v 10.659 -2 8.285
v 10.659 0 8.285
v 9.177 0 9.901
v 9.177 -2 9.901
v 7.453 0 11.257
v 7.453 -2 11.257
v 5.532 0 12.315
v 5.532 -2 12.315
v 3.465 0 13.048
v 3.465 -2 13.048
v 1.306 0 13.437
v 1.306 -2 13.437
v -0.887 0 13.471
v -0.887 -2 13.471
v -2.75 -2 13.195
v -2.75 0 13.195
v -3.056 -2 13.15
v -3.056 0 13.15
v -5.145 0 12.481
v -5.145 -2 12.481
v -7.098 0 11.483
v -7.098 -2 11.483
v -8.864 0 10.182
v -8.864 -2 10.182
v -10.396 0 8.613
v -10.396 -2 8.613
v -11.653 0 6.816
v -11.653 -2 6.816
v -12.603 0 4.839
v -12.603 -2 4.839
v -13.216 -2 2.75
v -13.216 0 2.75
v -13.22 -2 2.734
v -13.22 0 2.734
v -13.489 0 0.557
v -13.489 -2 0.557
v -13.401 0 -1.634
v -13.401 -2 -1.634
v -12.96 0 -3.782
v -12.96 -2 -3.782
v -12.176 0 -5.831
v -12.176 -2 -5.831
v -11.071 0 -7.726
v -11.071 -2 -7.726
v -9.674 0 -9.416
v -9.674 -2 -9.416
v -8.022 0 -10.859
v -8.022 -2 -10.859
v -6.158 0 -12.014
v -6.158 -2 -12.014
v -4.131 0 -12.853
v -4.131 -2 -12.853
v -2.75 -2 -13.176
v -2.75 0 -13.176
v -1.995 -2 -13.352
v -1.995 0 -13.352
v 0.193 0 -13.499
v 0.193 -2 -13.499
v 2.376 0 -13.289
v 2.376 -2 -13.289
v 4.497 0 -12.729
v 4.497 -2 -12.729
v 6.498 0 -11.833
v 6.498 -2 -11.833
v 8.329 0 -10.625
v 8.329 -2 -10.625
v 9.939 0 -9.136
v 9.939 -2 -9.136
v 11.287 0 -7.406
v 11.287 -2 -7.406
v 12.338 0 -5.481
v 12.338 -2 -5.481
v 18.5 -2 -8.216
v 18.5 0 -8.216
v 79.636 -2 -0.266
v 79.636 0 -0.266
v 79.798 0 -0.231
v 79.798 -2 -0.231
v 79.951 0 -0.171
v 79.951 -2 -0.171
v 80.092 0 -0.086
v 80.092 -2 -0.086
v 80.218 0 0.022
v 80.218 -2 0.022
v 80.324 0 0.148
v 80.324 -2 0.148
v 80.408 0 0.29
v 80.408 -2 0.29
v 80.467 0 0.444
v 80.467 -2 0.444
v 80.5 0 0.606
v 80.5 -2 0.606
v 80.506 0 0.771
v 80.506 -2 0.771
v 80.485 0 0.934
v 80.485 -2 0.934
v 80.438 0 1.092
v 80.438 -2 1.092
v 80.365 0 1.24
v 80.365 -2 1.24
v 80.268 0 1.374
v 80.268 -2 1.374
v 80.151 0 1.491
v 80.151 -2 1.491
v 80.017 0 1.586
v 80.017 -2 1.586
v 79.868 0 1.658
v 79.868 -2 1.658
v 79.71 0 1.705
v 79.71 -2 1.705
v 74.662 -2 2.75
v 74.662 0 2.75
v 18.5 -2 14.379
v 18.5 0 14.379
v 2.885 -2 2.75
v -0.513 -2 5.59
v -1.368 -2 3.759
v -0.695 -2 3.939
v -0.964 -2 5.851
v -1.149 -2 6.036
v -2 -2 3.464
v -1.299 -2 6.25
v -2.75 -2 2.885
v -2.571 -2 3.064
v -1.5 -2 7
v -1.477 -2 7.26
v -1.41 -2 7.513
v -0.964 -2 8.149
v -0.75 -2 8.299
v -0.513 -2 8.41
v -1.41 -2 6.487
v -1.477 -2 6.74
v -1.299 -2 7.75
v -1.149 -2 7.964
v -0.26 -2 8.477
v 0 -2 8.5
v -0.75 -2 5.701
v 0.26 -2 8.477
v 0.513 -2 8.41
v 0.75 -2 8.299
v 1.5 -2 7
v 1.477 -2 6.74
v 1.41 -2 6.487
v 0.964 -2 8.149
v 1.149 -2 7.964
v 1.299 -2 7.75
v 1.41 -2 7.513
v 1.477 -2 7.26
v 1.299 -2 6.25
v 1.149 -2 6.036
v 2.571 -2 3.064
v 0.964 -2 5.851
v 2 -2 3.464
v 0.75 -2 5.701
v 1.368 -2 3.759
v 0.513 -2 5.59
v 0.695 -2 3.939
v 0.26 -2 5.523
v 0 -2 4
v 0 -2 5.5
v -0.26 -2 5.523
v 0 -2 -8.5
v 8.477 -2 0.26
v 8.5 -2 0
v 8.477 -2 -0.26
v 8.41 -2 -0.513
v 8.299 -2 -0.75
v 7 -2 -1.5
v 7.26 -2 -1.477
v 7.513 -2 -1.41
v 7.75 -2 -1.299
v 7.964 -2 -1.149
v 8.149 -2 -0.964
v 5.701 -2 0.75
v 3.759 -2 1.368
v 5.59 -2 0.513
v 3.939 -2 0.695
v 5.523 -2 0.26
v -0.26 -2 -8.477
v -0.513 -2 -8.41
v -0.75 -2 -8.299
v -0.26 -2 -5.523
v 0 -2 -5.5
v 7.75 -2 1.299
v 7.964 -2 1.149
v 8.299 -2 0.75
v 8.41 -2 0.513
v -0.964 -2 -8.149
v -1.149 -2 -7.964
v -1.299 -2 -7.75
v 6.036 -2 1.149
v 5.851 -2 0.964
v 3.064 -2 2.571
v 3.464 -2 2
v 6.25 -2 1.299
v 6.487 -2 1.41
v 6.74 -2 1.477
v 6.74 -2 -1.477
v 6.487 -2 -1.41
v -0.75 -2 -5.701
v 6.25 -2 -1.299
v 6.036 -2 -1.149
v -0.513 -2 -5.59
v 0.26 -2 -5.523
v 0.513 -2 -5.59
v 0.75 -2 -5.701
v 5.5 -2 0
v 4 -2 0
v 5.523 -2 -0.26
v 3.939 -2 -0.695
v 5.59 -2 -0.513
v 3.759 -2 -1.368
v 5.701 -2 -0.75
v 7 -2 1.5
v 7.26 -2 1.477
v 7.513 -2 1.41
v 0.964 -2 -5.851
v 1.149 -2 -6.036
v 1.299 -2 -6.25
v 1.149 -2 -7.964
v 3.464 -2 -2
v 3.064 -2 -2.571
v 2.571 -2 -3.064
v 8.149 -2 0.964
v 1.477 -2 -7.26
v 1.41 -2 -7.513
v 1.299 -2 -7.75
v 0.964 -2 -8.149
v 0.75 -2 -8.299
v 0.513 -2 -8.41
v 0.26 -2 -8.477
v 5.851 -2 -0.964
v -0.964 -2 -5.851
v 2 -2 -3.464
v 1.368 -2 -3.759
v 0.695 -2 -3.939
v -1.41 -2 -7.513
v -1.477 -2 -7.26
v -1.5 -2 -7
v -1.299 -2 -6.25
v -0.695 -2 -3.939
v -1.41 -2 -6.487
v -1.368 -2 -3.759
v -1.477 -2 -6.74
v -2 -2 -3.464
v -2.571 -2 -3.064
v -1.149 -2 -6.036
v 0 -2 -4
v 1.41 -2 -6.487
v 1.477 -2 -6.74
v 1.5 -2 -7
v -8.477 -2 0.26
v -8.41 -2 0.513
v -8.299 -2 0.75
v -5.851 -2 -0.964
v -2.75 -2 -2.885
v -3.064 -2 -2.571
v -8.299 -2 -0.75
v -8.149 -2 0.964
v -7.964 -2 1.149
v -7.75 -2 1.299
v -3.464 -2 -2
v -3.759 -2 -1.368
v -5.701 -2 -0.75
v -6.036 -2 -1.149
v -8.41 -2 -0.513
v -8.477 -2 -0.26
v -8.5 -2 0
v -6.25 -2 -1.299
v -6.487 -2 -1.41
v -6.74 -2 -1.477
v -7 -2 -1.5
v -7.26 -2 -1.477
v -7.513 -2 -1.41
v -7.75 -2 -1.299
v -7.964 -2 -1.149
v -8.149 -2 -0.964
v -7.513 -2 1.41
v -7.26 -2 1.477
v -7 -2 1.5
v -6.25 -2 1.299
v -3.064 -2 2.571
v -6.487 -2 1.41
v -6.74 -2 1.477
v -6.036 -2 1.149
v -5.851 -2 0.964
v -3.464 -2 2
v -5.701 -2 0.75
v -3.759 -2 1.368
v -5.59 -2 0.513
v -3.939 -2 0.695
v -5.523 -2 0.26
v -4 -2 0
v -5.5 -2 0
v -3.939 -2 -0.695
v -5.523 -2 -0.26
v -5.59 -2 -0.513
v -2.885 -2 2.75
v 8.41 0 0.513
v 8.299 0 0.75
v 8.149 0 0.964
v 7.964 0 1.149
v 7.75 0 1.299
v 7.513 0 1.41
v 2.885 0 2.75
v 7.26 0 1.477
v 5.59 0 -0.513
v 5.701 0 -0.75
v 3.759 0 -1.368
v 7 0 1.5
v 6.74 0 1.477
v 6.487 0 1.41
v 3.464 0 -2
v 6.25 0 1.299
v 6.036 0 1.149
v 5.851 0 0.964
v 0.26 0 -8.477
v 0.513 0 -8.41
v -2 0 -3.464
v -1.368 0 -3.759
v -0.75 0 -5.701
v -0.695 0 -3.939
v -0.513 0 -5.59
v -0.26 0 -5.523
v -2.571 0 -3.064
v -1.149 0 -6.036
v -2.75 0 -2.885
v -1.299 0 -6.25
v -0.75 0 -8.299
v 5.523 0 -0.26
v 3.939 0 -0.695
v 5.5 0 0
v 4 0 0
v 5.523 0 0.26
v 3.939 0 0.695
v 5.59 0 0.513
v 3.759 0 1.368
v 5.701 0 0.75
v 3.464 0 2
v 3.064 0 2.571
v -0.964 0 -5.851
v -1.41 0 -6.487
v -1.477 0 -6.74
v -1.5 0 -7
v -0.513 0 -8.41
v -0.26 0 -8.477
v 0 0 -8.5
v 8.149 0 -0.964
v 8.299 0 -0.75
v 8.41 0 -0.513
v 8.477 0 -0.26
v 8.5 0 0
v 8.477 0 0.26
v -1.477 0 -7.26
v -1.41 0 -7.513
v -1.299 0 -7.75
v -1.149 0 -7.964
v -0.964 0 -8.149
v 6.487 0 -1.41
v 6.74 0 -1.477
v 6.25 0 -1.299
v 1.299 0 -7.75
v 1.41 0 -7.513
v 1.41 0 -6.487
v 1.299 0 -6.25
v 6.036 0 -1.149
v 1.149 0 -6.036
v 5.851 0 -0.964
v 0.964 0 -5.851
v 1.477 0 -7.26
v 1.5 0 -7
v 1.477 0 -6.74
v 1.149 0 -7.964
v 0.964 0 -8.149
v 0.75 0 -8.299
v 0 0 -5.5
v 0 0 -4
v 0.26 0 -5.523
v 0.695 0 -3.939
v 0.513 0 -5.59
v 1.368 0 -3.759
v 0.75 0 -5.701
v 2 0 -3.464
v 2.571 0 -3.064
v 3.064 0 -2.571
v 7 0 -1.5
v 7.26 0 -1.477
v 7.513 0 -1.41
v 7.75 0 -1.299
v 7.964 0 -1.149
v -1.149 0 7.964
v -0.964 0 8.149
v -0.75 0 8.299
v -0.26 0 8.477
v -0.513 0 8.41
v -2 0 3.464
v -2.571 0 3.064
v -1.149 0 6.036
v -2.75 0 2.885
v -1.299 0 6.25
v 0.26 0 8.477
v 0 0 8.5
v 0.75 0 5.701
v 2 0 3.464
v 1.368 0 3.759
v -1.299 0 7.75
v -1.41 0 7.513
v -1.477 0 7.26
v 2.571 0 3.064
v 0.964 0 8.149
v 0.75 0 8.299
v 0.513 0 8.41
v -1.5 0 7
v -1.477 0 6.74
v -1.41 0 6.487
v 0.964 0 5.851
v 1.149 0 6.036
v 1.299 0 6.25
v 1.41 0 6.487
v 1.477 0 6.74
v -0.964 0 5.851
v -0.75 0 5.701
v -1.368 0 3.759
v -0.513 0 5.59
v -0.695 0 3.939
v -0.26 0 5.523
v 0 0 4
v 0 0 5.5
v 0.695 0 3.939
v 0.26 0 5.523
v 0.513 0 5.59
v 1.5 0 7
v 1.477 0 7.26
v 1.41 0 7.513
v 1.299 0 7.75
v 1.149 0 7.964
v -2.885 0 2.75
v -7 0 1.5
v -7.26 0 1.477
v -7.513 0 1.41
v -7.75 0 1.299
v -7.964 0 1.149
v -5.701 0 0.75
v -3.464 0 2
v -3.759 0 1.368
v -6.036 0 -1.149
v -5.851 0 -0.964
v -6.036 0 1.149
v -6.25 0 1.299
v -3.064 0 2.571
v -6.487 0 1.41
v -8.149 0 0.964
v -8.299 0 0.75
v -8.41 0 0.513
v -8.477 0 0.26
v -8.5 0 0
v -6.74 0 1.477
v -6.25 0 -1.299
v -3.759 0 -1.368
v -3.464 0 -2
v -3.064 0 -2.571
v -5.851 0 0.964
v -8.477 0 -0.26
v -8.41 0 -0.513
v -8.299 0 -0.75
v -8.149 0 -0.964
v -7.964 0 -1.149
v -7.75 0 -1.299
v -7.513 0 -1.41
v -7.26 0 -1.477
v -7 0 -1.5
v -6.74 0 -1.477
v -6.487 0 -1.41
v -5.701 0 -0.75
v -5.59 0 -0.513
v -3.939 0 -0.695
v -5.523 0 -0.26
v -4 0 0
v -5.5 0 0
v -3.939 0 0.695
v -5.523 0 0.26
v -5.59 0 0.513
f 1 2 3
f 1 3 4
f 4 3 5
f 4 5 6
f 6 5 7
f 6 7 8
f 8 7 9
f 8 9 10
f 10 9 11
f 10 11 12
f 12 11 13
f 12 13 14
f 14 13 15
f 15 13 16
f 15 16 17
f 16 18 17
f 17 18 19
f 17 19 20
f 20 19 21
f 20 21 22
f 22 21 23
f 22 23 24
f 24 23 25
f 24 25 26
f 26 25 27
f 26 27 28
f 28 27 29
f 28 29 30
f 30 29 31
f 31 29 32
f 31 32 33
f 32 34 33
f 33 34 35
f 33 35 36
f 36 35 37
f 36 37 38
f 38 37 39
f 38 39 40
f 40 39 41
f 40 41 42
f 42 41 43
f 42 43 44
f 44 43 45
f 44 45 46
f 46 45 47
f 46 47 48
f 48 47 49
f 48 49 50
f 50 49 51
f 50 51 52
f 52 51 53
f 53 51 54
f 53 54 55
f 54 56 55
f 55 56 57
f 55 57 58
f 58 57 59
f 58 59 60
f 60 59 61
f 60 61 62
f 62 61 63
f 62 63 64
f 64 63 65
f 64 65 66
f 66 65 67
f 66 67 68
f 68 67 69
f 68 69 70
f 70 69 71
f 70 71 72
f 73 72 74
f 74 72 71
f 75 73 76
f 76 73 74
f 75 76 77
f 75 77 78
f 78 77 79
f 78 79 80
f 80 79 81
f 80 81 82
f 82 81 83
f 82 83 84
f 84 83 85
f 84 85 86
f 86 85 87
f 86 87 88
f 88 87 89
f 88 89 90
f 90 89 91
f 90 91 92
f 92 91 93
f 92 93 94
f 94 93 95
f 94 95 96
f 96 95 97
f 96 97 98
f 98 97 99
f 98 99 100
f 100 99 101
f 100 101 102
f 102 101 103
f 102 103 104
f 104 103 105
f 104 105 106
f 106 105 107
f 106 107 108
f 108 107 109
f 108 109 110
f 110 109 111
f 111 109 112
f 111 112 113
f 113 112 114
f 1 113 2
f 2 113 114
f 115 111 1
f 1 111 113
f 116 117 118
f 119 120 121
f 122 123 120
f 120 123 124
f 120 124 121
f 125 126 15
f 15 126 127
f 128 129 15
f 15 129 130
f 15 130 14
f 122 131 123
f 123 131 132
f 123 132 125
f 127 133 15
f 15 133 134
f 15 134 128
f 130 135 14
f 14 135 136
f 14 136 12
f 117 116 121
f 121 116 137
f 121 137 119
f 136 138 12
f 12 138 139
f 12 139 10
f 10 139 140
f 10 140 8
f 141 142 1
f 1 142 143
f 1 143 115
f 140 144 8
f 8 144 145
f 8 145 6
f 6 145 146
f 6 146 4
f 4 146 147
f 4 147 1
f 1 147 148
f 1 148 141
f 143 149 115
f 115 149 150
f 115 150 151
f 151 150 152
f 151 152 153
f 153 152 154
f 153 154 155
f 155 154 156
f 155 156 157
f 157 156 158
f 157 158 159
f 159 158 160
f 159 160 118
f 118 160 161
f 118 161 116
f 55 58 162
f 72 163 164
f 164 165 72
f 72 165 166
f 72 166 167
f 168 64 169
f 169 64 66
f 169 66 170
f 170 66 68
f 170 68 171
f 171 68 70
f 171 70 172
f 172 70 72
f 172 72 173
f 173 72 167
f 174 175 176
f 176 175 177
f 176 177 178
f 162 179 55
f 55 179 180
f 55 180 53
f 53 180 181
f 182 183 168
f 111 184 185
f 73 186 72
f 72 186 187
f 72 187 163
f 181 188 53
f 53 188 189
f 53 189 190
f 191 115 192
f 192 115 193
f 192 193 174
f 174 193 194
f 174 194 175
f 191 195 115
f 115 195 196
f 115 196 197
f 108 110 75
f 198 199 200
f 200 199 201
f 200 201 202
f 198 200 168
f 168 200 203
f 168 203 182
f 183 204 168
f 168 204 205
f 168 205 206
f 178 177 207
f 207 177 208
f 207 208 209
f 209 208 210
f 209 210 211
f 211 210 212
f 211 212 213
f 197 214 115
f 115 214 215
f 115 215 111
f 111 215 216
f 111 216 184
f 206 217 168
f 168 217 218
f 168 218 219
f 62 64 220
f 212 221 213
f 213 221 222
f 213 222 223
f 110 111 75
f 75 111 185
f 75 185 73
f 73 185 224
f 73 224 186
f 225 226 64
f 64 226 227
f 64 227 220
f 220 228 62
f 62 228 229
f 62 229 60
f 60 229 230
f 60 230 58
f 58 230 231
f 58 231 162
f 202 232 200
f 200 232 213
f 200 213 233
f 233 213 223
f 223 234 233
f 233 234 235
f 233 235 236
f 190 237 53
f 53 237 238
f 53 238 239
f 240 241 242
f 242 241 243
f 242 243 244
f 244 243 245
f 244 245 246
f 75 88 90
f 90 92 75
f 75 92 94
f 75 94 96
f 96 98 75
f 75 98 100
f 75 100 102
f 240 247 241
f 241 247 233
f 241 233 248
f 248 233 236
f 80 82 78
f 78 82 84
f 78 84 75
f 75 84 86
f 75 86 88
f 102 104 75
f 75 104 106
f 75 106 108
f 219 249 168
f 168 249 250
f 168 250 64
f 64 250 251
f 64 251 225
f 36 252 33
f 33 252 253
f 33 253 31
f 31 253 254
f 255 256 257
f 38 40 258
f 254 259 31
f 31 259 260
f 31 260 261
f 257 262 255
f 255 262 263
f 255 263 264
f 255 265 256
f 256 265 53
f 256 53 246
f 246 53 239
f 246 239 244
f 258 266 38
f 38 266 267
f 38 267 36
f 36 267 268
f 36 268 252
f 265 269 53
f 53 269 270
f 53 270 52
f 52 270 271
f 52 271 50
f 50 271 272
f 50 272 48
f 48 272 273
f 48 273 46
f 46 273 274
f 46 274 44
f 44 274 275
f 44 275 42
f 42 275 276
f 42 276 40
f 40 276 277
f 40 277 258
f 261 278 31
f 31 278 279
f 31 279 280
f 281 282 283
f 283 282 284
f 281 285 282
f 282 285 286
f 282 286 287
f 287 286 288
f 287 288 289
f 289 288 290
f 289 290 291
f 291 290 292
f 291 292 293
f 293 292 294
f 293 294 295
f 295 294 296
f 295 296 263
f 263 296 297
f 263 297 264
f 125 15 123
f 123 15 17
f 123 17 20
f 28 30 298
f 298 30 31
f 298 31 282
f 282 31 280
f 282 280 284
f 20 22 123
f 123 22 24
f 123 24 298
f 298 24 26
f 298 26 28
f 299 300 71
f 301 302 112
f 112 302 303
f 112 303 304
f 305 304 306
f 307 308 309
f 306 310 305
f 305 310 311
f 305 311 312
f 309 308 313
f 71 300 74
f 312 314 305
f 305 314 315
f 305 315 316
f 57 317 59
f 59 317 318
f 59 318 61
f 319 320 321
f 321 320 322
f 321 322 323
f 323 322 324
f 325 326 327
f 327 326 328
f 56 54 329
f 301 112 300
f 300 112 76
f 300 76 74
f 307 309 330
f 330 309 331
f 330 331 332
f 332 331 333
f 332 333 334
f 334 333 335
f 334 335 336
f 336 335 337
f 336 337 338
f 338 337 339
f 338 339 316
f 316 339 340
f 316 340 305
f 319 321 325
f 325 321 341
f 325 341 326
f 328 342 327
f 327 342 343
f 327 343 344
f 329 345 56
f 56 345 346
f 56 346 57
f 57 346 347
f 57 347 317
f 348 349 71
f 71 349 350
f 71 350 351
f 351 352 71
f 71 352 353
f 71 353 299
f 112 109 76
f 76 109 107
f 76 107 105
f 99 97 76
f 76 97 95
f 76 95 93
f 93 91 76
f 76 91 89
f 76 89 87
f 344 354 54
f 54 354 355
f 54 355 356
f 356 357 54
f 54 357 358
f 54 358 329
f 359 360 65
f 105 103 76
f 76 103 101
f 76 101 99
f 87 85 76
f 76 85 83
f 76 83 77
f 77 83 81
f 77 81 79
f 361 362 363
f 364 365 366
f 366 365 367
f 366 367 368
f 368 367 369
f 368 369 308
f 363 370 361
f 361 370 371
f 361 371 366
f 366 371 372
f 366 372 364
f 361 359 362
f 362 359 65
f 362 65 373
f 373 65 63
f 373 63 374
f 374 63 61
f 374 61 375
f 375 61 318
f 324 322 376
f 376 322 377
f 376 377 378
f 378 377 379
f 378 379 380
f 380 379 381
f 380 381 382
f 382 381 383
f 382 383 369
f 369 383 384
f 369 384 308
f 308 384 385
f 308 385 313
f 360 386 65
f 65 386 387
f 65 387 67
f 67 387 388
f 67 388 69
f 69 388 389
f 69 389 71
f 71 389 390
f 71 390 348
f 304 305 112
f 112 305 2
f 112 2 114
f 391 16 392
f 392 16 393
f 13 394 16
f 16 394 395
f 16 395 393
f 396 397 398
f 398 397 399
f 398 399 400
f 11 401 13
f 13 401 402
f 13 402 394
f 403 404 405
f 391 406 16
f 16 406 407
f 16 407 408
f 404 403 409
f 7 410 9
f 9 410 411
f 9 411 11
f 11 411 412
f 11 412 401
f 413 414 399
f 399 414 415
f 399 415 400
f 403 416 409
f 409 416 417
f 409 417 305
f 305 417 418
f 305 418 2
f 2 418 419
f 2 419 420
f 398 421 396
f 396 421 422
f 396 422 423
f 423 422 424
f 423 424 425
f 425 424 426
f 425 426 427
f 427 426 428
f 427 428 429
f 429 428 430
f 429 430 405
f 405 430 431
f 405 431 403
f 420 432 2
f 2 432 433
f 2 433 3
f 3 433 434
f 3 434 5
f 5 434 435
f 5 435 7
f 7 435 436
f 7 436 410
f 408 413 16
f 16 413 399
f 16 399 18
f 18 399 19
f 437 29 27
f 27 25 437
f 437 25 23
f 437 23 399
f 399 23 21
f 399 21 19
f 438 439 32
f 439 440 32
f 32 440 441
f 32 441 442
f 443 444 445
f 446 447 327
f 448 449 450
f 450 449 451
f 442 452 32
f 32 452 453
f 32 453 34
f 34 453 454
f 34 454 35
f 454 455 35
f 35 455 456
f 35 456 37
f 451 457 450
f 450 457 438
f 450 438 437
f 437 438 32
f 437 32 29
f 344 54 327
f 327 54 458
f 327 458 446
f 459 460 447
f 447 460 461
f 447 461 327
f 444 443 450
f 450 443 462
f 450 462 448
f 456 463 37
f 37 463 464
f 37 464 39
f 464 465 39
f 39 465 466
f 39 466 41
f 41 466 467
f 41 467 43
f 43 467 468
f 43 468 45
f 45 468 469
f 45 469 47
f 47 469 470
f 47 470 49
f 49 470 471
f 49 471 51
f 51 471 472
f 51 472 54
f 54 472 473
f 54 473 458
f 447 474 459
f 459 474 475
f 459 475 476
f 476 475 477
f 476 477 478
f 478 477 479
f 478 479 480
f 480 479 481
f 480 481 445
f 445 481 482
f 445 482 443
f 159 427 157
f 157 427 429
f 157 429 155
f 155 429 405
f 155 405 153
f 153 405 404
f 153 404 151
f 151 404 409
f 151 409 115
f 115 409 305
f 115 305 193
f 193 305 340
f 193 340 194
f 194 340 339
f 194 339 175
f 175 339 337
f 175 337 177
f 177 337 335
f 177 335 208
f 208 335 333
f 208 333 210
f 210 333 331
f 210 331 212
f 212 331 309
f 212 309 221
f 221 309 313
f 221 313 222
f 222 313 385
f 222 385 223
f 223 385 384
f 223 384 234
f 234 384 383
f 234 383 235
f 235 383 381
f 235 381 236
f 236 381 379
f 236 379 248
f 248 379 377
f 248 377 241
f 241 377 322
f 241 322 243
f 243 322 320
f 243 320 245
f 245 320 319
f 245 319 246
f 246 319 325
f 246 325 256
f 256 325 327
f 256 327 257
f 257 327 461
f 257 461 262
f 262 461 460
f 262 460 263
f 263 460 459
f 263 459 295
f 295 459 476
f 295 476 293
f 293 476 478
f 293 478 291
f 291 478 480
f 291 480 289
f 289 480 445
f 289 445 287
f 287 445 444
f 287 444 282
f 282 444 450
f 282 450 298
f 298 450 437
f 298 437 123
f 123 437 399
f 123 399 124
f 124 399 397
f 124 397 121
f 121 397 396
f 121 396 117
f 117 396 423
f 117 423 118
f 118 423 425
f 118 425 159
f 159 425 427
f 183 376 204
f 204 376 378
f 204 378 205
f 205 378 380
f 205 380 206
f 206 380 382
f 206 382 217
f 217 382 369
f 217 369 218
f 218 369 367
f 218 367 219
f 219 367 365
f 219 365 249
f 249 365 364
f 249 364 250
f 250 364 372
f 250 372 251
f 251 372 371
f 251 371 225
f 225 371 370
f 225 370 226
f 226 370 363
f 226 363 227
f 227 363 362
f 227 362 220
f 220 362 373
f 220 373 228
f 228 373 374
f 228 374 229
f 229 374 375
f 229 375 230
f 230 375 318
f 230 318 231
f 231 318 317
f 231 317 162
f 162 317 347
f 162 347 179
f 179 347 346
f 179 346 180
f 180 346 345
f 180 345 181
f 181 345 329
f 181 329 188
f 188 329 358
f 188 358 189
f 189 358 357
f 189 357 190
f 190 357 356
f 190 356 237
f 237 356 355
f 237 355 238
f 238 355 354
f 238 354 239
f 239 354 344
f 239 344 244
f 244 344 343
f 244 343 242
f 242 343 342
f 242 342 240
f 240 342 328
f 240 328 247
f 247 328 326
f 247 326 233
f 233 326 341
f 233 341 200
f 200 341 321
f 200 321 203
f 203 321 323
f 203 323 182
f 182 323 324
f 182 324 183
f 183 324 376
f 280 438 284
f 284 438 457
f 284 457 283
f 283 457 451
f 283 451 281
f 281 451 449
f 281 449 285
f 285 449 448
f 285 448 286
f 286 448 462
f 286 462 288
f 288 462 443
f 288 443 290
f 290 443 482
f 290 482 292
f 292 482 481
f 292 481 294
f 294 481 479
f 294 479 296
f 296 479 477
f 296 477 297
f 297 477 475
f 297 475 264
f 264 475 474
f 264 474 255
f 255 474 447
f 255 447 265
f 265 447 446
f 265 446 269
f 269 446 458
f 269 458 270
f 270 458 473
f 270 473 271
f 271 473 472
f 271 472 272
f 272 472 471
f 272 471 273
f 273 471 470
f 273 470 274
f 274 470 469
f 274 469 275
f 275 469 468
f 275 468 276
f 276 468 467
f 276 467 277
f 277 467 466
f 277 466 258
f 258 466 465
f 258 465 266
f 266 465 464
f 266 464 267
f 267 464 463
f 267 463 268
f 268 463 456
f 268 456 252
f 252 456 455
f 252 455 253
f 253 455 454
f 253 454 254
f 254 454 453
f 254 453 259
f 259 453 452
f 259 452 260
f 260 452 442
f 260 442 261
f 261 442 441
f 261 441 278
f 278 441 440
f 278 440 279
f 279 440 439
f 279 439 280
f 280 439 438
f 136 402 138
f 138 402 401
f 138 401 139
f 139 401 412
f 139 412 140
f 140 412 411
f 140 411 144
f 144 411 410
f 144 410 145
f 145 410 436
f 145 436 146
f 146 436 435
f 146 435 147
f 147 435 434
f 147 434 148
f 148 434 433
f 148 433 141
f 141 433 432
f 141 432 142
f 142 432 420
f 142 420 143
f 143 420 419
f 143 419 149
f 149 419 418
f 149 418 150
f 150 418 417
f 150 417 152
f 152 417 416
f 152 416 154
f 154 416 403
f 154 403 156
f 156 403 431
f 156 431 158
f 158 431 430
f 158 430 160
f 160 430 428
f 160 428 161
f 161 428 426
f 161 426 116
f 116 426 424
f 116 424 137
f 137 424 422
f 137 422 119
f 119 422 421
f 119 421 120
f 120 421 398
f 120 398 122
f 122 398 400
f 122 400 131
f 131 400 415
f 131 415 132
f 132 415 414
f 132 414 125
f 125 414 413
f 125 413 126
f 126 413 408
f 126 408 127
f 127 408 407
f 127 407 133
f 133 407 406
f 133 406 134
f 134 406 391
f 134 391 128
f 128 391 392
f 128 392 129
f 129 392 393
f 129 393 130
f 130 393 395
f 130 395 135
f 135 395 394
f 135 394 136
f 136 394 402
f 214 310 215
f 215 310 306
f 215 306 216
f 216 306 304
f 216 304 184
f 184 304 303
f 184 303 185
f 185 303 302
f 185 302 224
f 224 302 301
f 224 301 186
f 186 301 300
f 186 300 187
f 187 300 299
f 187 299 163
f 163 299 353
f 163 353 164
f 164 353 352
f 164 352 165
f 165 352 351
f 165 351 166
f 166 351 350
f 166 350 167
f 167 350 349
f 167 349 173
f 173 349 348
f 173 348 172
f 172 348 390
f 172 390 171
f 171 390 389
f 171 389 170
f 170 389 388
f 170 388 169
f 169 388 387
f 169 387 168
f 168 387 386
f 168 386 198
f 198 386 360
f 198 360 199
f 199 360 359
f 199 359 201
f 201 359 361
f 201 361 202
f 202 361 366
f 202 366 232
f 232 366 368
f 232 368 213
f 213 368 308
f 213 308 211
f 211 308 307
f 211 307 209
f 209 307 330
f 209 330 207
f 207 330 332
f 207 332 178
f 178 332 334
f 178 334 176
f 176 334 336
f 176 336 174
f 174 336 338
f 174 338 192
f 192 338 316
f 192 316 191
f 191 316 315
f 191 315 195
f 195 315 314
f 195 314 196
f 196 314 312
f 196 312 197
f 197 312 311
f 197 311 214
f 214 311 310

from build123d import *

# Parameters (mm, degrees)
BRIDA_BASE1_DEPTH     = 2
CROQUIS12_R           = 4
CORTAR_EXTRUIR1_DEPTH = 2
CROQUIS13_R           = 1.5
CORTAR_EXTRUIR2_DEPTH = 2
MATRIZC1_COUNT        = 4


# Sheet-metal steps are written as plain solids
with BuildPart() as part:
    # Croquis7 → Brida base1 (new body)
    with BuildSketch(Plane(origin=(0, 0, 0), x_dir=(1, 0, 0), z_dir=(0, 1, 0))):
        with BuildLine():
            Line((10.659249118, -8.284752463), (18.5, -14.378866547))
            Line((18.5, -14.378866547), (79.710147148, -1.70472983))
            ThreePointArc((79.710147148, -1.70472983), (80.506688025, -0.68807512), (79.636333375, 0.266150717))
            Line((79.636333375, 0.266150717), (18.5, 8.215724958))
            Line((18.5, 8.215724958), (12.337716326, 5.480645126))
            ThreePointArc((12.337716326, 5.480645126), (-13.400994276, 1.634034128), (10.659249118, -8.284752463))
        make_face()
    extrude(amount=-BRIDA_BASE1_DEPTH)

    # Croquis12 → Cortar-Extruir1 (cut)
    with BuildSketch(Plane(origin=(0, 0, 0), x_dir=(1, 0, 0), z_dir=(0, 1, 0))):
        with Locations(Location((0, 0, 0), (0, 0, 270))):
            Circle(CROQUIS12_R)
    extrude(amount=-CORTAR_EXTRUIR1_DEPTH, mode=Mode.SUBTRACT)

    # Croquis13 → Cortar-Extruir2 (cut)
    with BuildSketch(Plane(origin=(0, 0, 0), x_dir=(1, 0, 0), z_dir=(0, 1, 0))):
        with Locations(Location((0, 7, 0), (0, 0, 270))):
            Circle(CROQUIS13_R)
    cortar_extruir2 = extrude(amount=-CORTAR_EXTRUIR2_DEPTH, mode=Mode.SUBTRACT)

    # MatrizC1: Cortar-Extruir2 ×4 about axis
    matrizc1_axis = Axis((0, 0, 0), (0, 1, 0))
    for i in range(1, MATRIZC1_COUNT):
        add(cortar_extruir2.rotate(matrizc1_axis, i * 360 / MATRIZC1_COUNT), mode=Mode.SUBTRACT)


solid = part.part
